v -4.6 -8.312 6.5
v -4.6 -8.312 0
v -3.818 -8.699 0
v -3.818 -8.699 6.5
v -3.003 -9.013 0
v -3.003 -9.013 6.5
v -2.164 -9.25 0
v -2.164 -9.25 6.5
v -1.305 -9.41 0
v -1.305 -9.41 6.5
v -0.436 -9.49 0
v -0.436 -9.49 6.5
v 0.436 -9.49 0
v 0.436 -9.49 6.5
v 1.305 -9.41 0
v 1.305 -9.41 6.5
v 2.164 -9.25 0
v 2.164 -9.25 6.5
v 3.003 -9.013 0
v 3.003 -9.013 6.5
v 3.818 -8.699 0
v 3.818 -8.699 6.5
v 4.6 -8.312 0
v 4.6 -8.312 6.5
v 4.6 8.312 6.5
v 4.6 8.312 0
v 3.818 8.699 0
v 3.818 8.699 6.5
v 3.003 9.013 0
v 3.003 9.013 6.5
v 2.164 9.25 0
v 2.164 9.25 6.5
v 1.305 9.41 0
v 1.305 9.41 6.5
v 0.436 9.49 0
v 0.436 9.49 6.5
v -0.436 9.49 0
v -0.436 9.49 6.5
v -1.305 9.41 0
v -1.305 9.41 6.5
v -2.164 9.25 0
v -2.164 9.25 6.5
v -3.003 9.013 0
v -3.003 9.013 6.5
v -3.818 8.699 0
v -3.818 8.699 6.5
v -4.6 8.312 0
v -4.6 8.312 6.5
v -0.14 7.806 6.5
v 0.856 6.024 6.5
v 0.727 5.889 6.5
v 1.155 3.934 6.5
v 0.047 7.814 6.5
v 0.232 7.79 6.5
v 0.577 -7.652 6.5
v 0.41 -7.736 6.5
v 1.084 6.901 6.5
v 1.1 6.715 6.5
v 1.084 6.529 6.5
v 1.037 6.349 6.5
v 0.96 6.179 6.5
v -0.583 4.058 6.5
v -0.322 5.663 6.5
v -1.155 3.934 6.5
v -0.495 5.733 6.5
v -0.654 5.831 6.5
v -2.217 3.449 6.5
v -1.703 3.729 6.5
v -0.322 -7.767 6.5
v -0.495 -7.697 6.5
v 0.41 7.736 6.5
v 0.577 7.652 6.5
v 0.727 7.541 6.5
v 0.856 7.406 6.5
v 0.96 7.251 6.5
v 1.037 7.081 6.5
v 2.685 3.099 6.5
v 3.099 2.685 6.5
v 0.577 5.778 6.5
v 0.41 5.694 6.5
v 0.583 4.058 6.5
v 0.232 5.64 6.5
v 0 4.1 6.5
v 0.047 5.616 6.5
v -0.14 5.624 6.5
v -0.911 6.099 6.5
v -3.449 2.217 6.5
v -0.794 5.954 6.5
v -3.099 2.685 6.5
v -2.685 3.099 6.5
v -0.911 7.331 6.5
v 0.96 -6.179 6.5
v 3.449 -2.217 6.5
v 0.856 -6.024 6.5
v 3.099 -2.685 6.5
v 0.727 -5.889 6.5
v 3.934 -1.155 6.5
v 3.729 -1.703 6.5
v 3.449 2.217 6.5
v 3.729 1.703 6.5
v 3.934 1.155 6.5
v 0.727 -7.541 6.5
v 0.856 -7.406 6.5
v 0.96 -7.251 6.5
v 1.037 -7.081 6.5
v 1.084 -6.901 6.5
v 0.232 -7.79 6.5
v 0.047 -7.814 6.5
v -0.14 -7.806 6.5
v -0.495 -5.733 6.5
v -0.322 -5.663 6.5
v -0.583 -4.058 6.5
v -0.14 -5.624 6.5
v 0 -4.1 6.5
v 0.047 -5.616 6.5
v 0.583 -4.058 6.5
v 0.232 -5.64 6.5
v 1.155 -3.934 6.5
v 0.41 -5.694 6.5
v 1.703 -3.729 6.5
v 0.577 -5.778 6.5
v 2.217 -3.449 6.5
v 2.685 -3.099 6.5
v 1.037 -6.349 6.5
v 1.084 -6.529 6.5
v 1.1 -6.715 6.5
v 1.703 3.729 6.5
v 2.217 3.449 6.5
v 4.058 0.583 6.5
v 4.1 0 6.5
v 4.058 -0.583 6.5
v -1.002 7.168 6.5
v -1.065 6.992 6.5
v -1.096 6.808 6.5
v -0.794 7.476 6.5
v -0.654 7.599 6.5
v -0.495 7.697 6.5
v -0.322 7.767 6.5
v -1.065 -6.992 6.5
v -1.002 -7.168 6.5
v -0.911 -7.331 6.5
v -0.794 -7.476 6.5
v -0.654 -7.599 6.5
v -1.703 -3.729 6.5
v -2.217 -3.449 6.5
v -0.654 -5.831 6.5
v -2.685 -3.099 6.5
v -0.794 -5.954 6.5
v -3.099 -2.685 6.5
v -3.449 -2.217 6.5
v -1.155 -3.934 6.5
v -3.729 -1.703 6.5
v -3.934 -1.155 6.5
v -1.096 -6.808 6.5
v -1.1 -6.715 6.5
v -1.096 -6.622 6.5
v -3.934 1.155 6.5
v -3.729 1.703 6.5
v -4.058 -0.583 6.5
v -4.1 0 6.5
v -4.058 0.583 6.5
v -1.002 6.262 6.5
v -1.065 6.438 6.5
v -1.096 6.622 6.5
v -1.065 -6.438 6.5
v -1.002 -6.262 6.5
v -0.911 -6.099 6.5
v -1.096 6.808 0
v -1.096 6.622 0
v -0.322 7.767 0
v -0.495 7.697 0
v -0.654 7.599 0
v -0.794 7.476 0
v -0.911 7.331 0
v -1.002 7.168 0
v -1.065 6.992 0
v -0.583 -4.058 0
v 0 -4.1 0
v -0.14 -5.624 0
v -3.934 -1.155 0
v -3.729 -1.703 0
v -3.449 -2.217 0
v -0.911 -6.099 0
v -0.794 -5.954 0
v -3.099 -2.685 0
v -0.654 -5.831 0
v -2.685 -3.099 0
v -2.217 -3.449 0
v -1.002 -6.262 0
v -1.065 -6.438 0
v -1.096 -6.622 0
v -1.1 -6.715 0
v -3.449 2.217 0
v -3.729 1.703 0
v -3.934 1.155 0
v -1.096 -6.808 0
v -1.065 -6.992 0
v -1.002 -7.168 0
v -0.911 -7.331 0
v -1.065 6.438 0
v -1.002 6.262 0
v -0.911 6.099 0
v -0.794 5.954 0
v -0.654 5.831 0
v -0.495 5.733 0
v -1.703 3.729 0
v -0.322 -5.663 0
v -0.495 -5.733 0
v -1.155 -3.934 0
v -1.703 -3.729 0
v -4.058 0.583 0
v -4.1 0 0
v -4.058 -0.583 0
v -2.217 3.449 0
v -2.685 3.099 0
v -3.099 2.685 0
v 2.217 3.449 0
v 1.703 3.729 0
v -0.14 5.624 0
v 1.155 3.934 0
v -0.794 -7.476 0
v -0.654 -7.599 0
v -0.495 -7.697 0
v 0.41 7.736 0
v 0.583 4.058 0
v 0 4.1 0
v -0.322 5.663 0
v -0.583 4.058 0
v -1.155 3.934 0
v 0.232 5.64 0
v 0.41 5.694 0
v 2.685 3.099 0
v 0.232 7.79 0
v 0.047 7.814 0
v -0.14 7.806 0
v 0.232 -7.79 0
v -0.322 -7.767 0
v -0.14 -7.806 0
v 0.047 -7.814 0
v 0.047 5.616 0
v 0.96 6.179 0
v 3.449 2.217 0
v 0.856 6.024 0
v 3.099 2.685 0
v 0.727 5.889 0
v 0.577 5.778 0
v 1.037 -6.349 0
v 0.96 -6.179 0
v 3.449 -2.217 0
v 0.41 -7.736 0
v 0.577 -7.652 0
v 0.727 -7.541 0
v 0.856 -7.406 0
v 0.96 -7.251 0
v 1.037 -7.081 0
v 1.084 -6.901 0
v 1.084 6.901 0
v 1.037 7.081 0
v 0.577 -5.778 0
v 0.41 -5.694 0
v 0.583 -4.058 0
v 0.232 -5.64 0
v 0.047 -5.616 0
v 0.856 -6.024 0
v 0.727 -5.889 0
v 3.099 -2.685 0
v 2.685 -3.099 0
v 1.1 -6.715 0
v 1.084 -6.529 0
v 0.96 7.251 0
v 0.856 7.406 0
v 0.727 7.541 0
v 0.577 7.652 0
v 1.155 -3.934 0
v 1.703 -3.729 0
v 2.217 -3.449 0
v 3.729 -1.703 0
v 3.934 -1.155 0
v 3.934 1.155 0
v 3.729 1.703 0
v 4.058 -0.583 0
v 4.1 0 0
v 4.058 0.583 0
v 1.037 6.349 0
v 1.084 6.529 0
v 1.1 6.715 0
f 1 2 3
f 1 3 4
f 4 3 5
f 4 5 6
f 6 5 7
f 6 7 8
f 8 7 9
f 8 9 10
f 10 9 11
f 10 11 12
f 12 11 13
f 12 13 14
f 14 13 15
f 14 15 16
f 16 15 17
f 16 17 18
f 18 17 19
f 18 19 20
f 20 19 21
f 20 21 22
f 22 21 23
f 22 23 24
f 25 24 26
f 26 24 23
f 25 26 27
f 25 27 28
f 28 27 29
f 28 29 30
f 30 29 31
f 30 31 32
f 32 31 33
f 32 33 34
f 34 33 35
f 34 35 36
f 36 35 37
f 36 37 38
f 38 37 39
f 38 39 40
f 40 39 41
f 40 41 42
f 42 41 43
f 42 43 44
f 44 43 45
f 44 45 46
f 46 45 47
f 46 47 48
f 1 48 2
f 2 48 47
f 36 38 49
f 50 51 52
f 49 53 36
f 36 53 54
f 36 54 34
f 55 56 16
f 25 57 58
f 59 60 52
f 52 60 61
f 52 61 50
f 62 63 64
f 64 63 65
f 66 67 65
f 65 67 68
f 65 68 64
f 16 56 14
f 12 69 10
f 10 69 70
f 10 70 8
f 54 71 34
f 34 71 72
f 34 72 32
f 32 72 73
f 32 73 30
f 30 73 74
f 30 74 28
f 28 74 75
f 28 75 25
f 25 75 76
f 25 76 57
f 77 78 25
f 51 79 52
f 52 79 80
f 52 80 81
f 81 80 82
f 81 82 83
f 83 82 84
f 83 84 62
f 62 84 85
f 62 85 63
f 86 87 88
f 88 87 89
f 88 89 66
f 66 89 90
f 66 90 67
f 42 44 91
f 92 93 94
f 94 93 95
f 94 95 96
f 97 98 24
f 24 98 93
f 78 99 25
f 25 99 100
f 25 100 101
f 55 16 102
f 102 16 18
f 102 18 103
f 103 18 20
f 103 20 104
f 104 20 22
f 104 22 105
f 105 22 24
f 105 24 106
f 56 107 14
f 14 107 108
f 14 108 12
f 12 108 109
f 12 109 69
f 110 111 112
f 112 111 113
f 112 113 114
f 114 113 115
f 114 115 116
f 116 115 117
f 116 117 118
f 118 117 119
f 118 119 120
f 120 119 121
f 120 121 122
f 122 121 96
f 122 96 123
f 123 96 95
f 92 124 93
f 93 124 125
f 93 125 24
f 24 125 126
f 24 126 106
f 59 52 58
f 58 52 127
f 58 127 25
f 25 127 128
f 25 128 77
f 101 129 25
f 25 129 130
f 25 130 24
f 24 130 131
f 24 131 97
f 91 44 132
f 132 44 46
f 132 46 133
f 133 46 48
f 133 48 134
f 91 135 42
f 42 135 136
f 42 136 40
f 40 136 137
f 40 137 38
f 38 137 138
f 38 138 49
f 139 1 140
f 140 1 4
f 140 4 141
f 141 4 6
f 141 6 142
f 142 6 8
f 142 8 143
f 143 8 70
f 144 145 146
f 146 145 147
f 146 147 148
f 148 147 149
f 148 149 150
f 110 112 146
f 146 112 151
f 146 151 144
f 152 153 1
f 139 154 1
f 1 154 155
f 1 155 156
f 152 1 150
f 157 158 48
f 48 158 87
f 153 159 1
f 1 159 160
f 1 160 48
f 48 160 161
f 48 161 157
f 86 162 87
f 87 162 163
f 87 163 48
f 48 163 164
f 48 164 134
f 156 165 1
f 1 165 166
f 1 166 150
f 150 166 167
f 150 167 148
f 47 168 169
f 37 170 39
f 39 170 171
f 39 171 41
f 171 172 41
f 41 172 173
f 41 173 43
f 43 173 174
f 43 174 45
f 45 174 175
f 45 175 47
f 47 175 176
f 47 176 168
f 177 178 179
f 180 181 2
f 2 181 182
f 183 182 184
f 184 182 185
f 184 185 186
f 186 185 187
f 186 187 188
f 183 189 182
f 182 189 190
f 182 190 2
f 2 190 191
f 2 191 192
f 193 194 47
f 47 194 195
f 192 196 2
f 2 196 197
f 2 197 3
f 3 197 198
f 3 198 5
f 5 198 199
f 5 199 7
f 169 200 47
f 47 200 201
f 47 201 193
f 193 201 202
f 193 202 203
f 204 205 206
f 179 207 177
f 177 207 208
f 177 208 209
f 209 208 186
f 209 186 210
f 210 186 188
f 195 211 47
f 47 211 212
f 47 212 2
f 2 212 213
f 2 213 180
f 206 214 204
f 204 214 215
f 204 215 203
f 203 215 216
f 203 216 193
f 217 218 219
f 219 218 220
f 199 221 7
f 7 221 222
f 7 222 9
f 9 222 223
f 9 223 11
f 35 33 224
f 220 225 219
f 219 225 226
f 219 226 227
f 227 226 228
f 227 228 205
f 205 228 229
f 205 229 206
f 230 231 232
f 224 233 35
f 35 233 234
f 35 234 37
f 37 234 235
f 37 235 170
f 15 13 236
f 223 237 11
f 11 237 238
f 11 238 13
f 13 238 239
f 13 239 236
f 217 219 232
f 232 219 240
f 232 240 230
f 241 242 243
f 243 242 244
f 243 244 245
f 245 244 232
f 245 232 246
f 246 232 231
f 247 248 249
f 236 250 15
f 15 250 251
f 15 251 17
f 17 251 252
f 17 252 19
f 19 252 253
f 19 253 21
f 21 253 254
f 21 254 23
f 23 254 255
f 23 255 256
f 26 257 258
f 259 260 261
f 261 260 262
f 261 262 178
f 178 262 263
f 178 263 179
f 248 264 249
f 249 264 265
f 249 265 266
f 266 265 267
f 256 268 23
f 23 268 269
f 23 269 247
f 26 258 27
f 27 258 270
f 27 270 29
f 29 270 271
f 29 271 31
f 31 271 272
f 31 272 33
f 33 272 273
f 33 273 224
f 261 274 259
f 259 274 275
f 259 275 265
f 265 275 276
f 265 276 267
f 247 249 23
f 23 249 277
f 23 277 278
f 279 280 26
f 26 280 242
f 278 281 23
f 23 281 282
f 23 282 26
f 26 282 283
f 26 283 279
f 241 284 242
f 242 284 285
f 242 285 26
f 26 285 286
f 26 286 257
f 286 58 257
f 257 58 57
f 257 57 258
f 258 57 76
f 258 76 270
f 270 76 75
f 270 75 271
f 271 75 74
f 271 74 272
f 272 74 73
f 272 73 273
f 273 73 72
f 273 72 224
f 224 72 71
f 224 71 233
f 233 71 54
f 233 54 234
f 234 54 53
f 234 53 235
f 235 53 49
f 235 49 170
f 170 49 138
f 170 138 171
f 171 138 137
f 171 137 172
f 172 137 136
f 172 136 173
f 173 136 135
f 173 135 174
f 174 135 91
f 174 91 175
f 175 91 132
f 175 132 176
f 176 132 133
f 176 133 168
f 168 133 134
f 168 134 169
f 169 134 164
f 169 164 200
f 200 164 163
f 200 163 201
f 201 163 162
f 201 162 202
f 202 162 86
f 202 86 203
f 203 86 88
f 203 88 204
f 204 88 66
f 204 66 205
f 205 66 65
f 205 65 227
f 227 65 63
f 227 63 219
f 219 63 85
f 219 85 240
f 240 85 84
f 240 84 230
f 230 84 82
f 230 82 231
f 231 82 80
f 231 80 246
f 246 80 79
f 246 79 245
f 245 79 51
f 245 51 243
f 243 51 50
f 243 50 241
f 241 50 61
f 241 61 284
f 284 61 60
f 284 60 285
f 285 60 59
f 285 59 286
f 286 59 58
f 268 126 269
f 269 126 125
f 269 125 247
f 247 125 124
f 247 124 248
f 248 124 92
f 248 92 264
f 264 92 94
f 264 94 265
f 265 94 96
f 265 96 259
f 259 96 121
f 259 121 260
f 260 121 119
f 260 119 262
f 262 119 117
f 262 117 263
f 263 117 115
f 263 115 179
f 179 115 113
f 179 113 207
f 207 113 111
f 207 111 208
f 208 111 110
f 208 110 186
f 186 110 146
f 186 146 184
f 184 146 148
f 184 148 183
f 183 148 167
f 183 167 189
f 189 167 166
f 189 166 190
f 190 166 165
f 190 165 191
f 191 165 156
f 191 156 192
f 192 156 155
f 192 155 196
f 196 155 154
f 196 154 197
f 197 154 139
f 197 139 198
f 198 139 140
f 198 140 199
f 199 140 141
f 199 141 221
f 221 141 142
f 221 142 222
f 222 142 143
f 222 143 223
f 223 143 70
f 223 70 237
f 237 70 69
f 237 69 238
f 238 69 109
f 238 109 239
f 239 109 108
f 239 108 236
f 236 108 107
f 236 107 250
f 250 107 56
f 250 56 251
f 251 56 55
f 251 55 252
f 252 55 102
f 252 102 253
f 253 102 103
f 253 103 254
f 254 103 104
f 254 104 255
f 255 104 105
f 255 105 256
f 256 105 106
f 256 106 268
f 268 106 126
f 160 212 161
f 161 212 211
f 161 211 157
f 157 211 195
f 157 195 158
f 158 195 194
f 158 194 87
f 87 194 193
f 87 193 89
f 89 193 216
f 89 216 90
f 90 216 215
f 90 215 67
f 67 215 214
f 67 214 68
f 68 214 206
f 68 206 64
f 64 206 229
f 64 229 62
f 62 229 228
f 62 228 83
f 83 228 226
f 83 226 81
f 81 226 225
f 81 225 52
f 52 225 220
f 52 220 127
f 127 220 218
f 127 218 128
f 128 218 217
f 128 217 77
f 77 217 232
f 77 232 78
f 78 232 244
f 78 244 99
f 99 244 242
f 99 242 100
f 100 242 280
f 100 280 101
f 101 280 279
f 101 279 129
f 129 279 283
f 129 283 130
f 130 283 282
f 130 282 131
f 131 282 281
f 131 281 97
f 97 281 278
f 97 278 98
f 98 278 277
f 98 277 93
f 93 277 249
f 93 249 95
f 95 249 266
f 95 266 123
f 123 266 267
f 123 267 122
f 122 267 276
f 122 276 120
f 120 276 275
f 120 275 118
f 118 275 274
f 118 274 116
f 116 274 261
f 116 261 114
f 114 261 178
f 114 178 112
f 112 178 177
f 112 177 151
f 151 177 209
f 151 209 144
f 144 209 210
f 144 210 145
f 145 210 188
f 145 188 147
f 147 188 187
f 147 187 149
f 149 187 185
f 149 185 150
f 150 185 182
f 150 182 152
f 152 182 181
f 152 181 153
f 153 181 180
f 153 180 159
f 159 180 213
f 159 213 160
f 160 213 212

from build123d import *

# Parameters (mm, degrees)
EXTRUDE1_DEPTH     = 6.5
SKETCH3_R          = 1.1
CUT_EXTRUDE1_DEPTH = 13.395967086
SKETCH5_R          = 4.1
CUT_EXTRUDE2_DEPTH = 24


with BuildPart() as part:
    # Sketch1 → Extrude1 (new body)
    with BuildSketch(Plane.XY):
        with BuildLine():
            Line((-4.6, -8.312039461), (-4.6, 8.312039461))
            ThreePointArc((-4.6, 8.312039461), (0, 9.5), (4.6, 8.312039461))
            Line((4.6, 8.312039461), (4.6, -8.312039461))
            ThreePointArc((4.6, -8.312039461), (0, -9.5), (-4.6, -8.312039461))
        make_face()
    extrude(amount=EXTRUDE1_DEPTH)

    # Sketch3 → Cut-Extrude1 (cut, through all)
    with BuildSketch(Plane.XY.offset(6.5)):
        with Locations((0, 6.715)):
            Circle(SKETCH3_R)
        with Locations((0, -6.715)):
            Circle(SKETCH3_R)
    extrude(amount=-CUT_EXTRUDE1_DEPTH, mode=Mode.SUBTRACT)

    # Sketch5 → Cut-Extrude2 (cut)
    with BuildSketch(Plane(origin=(0, 0, 0), x_dir=(-1, 0, 0), z_dir=(0, 0, -1))):
        Circle(SKETCH5_R)
    extrude(amount=-CUT_EXTRUDE2_DEPTH, mode=Mode.SUBTRACT)


solid = part.part
